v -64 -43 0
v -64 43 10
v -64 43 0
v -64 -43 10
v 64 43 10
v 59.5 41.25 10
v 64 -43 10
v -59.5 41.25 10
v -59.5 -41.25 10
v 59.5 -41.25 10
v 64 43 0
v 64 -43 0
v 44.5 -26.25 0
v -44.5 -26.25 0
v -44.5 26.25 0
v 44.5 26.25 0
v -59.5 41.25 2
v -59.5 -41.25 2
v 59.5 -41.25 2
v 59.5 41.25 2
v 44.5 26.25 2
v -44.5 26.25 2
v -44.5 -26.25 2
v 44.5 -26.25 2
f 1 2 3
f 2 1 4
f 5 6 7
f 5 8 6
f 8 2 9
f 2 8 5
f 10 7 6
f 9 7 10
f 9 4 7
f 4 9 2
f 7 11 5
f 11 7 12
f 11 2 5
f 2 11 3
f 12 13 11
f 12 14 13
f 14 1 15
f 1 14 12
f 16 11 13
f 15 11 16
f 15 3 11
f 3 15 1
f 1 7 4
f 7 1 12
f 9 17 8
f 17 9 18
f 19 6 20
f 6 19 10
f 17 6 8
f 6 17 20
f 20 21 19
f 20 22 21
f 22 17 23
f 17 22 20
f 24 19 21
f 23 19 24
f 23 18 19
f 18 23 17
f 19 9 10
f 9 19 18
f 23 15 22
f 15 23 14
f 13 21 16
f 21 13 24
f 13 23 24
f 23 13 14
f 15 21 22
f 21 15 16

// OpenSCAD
difference() {
    translate([0, 0, 5]) cube([128, 86, 10], center=true);
    translate([0, 0, 12]) cube([119, 82.5, 20], center=true);
    cube([89, 52.5, 30], center=true);
}
